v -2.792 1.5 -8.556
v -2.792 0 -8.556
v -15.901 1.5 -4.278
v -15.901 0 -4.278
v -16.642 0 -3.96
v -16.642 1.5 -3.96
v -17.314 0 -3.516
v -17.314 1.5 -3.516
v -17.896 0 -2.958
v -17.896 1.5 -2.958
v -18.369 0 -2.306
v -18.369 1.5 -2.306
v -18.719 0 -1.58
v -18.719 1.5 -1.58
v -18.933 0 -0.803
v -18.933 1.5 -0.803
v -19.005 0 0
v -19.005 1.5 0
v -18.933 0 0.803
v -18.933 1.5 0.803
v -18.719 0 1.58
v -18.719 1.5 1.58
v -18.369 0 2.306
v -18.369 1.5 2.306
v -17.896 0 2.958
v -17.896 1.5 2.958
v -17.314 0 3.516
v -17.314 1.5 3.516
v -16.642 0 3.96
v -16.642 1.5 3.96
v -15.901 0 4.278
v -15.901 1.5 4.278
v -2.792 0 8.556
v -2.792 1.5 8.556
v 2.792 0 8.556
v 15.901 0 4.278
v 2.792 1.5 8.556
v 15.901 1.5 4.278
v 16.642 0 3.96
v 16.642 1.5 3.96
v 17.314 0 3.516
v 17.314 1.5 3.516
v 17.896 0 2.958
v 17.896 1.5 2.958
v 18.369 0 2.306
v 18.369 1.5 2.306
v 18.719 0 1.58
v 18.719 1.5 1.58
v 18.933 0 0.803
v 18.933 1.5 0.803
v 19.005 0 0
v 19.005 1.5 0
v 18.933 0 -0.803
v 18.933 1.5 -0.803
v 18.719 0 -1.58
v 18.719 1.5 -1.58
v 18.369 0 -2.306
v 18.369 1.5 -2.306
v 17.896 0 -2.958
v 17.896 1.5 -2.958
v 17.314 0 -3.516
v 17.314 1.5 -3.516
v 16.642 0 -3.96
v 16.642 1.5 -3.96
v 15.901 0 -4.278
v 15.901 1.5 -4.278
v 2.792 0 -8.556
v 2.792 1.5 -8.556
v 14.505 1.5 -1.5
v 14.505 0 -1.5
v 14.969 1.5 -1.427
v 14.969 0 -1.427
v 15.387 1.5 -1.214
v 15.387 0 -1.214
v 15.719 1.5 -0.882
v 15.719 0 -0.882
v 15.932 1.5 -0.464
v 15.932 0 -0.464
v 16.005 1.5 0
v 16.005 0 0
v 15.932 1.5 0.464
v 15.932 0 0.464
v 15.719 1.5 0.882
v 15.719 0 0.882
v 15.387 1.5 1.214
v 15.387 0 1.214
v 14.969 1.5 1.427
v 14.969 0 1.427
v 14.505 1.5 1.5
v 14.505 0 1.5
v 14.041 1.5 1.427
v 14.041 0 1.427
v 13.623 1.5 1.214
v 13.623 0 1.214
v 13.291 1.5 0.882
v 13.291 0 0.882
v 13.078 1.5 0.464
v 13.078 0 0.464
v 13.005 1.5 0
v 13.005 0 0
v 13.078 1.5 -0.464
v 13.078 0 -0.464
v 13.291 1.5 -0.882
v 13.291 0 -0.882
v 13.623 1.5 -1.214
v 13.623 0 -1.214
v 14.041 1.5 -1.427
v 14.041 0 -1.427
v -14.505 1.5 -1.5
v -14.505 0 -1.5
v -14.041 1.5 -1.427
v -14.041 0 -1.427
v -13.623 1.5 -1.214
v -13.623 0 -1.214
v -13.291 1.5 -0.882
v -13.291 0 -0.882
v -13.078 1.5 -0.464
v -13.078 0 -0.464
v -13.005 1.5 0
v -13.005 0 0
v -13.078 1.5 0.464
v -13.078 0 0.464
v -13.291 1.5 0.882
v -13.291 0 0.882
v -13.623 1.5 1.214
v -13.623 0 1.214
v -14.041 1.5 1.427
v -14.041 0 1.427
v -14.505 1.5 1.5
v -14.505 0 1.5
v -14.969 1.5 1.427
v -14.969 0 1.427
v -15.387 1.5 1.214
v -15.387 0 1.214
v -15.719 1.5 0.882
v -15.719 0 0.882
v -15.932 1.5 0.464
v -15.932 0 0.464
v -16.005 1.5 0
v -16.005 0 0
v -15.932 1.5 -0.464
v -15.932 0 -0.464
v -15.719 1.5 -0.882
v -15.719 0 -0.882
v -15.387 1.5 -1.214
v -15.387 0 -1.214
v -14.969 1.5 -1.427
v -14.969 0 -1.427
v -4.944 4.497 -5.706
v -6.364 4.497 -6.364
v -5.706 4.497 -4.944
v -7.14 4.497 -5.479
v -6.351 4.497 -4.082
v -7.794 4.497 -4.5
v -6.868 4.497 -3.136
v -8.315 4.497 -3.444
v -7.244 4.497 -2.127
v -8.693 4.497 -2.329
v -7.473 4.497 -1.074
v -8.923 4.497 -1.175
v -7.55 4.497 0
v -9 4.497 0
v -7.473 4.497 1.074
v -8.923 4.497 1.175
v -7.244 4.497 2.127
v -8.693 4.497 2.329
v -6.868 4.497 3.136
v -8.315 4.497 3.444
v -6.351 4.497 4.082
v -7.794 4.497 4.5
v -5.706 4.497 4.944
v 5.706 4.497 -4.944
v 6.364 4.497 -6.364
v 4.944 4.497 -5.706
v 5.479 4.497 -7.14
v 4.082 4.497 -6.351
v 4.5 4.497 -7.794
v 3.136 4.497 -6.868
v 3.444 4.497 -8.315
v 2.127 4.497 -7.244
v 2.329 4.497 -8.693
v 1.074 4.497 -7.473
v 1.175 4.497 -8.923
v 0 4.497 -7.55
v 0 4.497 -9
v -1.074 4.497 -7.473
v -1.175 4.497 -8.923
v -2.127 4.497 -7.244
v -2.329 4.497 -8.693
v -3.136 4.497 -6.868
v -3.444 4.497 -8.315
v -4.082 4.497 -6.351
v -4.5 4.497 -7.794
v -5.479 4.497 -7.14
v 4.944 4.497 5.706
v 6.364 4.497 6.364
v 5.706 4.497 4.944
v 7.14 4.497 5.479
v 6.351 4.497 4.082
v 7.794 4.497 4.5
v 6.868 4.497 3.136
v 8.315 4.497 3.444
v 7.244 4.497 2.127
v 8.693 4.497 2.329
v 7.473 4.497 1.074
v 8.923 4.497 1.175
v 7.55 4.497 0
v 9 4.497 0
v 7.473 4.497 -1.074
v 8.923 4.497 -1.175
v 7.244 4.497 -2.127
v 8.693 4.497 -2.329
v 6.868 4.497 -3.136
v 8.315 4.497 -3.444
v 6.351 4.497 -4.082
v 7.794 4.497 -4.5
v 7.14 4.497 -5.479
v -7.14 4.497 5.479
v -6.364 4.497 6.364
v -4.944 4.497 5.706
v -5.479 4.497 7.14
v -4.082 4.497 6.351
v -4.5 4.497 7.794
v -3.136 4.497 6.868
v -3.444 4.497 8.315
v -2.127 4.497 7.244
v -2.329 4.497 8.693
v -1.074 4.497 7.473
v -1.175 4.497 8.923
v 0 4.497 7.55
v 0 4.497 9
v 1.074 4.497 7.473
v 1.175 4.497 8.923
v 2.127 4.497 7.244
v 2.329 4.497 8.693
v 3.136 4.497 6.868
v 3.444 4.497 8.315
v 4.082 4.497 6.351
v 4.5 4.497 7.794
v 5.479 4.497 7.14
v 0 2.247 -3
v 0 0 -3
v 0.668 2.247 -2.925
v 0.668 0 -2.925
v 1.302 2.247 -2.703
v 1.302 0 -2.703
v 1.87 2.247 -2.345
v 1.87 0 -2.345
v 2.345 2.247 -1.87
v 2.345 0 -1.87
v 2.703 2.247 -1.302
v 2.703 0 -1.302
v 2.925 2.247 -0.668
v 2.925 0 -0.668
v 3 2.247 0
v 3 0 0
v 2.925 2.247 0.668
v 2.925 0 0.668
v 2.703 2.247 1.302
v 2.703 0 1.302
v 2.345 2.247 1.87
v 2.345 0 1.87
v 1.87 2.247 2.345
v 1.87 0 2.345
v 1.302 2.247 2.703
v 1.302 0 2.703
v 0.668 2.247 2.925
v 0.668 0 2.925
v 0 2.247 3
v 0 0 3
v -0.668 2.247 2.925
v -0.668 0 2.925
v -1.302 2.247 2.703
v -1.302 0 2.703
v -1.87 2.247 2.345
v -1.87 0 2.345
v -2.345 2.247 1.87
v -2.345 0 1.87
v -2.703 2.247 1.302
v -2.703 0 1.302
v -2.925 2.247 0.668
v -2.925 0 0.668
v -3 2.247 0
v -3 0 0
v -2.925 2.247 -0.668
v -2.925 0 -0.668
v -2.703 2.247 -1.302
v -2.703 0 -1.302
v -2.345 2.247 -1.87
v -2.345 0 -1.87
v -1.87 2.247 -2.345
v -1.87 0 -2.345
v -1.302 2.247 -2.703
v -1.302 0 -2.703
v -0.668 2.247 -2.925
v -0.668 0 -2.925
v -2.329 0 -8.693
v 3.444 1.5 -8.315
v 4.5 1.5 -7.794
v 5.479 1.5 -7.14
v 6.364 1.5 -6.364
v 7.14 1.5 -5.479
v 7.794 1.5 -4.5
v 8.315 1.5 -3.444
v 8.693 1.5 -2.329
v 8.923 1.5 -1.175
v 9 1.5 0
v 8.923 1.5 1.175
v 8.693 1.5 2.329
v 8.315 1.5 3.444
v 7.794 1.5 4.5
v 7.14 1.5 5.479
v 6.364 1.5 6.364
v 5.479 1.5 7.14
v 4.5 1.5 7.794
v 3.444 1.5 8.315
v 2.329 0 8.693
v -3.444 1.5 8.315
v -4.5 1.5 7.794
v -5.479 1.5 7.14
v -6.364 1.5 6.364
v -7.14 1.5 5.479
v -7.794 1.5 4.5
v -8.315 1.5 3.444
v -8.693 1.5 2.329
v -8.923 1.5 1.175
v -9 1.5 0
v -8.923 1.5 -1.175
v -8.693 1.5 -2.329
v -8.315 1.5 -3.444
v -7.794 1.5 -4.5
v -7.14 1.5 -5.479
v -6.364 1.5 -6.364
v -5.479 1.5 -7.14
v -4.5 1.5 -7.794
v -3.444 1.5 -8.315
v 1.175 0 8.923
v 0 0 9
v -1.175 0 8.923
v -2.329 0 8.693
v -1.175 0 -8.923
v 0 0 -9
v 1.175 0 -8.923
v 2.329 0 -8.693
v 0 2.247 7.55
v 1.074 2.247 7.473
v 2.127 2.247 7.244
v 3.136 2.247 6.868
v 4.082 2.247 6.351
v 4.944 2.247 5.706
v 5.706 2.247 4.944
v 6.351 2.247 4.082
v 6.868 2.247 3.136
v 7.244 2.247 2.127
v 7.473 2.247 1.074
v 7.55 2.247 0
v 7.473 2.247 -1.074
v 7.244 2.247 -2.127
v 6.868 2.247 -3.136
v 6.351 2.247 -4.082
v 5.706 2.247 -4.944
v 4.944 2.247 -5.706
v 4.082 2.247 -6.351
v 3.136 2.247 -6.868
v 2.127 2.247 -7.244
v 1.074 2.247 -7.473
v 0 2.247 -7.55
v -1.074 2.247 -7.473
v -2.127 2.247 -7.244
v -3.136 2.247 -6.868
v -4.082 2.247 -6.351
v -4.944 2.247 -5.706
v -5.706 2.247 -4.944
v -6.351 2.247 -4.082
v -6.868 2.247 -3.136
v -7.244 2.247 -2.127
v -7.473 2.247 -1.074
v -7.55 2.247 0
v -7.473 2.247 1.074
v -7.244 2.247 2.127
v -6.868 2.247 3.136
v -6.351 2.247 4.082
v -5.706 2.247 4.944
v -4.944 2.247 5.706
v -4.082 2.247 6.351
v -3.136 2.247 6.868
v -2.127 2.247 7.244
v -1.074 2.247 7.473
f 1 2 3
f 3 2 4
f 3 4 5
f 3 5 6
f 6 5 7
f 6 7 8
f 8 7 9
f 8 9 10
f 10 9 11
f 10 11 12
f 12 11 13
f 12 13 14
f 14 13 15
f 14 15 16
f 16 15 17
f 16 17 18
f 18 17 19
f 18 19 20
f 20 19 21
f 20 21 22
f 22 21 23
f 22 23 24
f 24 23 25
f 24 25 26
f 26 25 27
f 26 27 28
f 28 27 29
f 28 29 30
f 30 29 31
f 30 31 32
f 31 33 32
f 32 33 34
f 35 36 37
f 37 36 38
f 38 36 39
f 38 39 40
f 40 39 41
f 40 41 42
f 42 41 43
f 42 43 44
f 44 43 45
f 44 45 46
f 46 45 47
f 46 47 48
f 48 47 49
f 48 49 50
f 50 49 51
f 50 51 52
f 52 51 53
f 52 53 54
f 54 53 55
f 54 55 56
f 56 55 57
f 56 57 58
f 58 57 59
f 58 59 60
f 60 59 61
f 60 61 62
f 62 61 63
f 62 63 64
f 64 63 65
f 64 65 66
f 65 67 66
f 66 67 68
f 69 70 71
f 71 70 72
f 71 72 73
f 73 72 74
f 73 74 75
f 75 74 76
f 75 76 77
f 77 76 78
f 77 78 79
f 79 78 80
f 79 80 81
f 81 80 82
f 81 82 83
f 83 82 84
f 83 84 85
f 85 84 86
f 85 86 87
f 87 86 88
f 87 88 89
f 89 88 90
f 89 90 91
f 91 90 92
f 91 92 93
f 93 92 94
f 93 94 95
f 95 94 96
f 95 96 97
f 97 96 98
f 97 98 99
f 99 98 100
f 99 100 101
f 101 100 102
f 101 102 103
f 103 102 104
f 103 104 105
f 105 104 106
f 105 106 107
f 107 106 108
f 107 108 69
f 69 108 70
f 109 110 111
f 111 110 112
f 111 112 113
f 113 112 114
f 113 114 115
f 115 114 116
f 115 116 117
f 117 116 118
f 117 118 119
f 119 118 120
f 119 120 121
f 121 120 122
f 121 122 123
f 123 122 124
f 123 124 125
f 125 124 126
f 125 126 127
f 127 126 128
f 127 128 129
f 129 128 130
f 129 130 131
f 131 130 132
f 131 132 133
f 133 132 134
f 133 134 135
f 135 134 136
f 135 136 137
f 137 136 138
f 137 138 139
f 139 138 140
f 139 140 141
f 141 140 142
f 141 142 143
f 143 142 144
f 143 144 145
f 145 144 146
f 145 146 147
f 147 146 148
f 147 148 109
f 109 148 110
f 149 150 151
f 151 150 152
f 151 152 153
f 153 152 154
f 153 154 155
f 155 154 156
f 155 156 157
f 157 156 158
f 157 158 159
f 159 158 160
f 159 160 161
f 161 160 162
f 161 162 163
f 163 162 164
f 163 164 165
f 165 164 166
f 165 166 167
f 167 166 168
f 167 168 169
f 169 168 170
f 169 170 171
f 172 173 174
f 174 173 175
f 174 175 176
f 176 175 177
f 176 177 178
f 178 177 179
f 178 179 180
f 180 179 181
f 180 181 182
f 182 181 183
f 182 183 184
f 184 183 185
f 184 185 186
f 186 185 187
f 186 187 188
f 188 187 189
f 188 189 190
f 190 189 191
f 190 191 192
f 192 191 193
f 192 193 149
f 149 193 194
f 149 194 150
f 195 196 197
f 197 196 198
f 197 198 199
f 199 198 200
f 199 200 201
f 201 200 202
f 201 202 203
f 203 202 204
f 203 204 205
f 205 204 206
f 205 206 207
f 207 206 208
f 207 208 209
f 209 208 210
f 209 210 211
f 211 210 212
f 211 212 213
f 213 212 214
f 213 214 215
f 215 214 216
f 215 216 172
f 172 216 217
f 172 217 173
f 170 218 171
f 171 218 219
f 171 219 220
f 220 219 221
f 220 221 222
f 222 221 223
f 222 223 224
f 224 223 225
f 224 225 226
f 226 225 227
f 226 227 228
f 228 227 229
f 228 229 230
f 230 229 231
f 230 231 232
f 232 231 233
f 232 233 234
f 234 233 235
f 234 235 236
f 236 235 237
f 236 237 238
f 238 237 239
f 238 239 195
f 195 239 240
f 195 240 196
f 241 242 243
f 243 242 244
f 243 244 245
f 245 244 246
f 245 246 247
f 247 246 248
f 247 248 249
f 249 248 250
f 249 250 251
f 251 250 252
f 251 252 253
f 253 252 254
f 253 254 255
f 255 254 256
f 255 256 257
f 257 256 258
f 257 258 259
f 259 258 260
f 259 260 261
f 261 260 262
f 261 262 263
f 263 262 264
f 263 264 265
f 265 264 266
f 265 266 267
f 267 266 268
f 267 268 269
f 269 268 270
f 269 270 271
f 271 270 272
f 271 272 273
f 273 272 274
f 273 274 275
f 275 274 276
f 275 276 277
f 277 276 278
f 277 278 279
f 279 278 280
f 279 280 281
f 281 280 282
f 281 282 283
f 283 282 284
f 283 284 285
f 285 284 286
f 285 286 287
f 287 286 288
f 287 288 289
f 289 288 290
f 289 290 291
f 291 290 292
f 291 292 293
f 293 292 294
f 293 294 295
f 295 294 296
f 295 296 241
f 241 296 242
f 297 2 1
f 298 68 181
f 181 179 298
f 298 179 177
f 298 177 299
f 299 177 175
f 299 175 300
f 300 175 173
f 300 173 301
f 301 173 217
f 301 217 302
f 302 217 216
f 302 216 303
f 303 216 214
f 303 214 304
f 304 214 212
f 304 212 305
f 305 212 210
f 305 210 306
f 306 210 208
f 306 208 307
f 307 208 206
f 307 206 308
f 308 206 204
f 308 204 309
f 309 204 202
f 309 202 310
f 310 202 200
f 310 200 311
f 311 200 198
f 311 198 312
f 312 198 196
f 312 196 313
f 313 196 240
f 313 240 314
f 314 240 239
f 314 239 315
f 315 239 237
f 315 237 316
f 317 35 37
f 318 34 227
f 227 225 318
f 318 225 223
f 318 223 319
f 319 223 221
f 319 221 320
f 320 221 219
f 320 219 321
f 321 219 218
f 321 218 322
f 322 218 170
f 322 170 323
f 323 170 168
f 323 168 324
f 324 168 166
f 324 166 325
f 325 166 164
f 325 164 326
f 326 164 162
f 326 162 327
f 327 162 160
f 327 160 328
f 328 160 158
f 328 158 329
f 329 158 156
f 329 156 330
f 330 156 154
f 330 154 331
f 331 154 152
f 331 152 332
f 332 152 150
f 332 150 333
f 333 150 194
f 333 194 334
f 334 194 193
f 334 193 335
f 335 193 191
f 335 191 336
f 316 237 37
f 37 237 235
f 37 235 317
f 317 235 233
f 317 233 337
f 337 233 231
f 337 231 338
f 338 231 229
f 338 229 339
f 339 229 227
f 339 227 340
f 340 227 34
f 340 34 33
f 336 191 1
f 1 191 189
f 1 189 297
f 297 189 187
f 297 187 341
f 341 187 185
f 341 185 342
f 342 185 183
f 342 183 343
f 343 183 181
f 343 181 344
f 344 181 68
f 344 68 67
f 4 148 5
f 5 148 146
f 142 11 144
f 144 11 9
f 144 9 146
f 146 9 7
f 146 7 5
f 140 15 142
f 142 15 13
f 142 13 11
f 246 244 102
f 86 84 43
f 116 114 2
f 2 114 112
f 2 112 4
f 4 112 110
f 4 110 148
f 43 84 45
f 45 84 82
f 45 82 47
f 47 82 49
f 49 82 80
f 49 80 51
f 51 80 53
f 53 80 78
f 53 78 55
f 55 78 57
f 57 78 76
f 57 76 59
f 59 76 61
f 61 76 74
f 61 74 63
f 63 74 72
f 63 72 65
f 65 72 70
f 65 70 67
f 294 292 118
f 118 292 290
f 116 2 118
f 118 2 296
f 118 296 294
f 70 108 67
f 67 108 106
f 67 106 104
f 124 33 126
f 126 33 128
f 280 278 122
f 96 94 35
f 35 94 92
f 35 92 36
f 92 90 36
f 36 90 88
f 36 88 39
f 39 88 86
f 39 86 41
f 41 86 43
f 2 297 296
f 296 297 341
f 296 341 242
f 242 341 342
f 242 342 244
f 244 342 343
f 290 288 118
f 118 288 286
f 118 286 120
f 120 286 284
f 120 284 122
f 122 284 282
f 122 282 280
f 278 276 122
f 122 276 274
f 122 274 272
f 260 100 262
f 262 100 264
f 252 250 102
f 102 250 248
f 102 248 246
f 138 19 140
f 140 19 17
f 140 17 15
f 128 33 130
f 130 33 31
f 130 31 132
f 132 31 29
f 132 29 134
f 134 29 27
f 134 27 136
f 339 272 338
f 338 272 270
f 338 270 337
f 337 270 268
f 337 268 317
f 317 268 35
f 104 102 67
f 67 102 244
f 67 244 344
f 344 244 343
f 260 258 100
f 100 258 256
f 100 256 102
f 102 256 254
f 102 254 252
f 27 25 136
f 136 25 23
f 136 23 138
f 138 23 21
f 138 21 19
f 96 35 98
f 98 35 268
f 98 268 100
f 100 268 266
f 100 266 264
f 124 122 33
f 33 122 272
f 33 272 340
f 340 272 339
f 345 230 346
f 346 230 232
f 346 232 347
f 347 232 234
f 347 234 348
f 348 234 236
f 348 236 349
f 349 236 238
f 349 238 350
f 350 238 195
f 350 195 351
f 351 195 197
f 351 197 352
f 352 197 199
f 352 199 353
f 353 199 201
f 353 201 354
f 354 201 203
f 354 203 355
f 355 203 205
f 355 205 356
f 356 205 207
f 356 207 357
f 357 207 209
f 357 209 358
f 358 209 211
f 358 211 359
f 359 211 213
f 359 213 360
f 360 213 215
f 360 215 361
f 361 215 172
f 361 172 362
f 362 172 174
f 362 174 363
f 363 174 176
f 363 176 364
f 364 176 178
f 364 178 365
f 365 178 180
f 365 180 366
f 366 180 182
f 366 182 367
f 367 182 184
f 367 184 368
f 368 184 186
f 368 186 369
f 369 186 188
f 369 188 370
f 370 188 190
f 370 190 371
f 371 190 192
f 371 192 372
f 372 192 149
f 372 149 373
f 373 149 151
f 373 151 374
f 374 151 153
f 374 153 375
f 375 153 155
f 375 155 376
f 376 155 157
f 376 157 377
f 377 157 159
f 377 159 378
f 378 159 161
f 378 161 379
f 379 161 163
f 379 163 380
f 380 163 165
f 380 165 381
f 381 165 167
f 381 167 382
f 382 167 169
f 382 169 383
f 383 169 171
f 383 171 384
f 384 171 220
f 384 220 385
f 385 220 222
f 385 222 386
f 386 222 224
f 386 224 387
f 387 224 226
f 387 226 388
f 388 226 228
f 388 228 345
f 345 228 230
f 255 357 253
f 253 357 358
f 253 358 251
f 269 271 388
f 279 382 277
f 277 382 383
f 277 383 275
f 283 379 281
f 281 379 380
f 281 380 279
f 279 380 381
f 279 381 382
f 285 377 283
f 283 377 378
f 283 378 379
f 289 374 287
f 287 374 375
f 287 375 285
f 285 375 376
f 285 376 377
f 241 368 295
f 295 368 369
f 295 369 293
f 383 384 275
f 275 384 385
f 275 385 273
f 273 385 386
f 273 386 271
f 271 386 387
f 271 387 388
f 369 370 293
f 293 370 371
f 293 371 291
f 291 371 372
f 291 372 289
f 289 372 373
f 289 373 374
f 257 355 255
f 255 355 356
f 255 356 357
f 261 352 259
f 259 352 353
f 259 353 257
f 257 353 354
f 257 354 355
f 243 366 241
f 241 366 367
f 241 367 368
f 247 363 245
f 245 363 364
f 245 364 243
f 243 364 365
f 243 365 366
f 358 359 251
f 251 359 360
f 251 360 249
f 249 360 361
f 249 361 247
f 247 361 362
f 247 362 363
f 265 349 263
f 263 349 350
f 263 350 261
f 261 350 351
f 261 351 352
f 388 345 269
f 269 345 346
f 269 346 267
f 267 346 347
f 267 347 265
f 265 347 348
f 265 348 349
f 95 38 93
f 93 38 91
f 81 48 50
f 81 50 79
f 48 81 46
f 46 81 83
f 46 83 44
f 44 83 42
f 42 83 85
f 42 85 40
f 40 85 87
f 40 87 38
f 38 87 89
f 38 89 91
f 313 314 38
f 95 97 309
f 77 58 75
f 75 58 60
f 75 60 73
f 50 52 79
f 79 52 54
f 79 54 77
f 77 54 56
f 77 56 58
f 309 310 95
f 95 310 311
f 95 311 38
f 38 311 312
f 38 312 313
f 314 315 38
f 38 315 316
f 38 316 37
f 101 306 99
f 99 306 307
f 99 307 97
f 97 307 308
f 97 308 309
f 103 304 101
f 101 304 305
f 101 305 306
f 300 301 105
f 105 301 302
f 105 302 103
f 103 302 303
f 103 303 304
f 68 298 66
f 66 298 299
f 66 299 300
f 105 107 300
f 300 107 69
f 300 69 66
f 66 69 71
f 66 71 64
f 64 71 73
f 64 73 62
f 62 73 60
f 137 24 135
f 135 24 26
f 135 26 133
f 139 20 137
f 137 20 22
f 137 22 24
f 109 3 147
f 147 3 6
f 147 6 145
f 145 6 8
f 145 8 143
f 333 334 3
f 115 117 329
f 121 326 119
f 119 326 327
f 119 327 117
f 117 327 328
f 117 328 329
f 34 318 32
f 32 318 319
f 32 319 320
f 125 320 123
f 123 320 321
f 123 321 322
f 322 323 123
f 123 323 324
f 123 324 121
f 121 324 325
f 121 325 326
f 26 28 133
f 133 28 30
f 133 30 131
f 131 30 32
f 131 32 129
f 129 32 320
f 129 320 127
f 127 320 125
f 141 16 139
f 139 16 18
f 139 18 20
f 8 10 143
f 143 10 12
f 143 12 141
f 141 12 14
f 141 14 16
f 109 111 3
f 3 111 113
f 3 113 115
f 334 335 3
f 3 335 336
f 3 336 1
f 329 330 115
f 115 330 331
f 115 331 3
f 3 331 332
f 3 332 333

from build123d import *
from build123d.topology import SkipClean

# Parameters (mm, degrees)
SKETCH1_R           = 1.5
SKETCH1_R_2         = 3
BOSS_EXTRUDE1_DEPTH = 4.4972
CUT_EXTRUDE2_START  = 4.4972
SKETCH1_6_R         = 7.55
CUT_EXTRUDE2_DEPTH  = 2.25
CUT_EXTRUDE1_START  = 1.5
SKETCH1_5_R         = 1.5
CUT_EXTRUDE1_DEPTH  = 2.9972


with BuildPart() as part:
    # Sketch1 → Boss-Extrude1 (new body)
    with BuildSketch(Plane(origin=(0, 0, 0), x_dir=(1, 0, 0), z_dir=(0, 1, 0))):
        with BuildLine():
            Line((15.901070321, 4.277965365), (2.792140641, 8.555930729))
            ThreePointArc((2.792140641, 8.555930729), (0, 9), (-2.792140641, 8.555930729))
            Line((-2.792140641, 8.555930729), (-15.901070321, 4.277965365))
            ThreePointArc((-15.901070321, 4.277965365), (-19.005, 0), (-15.901070321, -4.277965365))
            Line((-15.901070321, -4.277965365), (-2.792140641, -8.555930729))
            ThreePointArc((-2.792140641, -8.555930729), (0, -9), (2.792140641, -8.555930729))
            Line((2.792140641, -8.555930729), (15.901070321, -4.277965365))
            ThreePointArc((15.901070321, -4.277965365), (19.005, 0), (15.901070321, 4.277965365))
        make_face()
        with Locations(Location((14.505, 0, 0), (0, 0, 270))):
            Circle(SKETCH1_R, mode=Mode.SUBTRACT)
        with Locations(Location((-14.505, 0, 0), (0, 0, 270))):
            Circle(SKETCH1_R, mode=Mode.SUBTRACT)
        with Locations(Location((0, 0, 0), (0, 0, 270))):
            Circle(SKETCH1_R_2, mode=Mode.SUBTRACT)
    extrude(amount=BOSS_EXTRUDE1_DEPTH)

    # Sketch1<6> → Cut-Extrude2 (cut)
    with BuildSketch(Plane(origin=(0, 0, 0), x_dir=(1, 0, 0), z_dir=(0, 1, 0)).offset(CUT_EXTRUDE2_START)):
        with Locations(Location((0, 0, 0), (0, 0, 270))):
            Circle(SKETCH1_6_R)
    extrude(amount=-CUT_EXTRUDE2_DEPTH, mode=Mode.SUBTRACT)

    # Sketch1<5> → Cut-Extrude1 (cut)
    # profile 1 of 2: a face of its own
    with SkipClean():  # the faces are left unmerged after this step: merging them gives an invalid solid
        with BuildSketch(Plane(origin=(0, 0, 0), x_dir=(1, 0, 0), z_dir=(0, 1, 0)).offset(CUT_EXTRUDE1_START)):
            with BuildLine():
                Line((-15.901070321, -4.277965365), (-2.792140641, -8.555930729))
                ThreePointArc((-2.792140641, -8.555930729), (-9, 0), (-2.792140641, 8.555930729))
                Line((-2.792140641, 8.555930729), (-15.901070321, 4.277965365))
                ThreePointArc((-15.901070321, 4.277965365), (-19.005, 0), (-15.901070321, -4.277965365))
            make_face()
            with Locations(Location((-14.505, 0, 0), (0, 0, 270))):
                Circle(SKETCH1_5_R, mode=Mode.SUBTRACT)
        # profile 2 of 2: a face of its own
        with BuildSketch(Plane(origin=(0, 0, 0), x_dir=(1, 0, 0), z_dir=(0, 1, 0)).offset(CUT_EXTRUDE1_START)):
            with BuildLine():
                ThreePointArc((9, 0), (7.284547542, -5.28539186), (2.792140641, -8.555930729))
                Line((2.792140641, -8.555930729), (15.901070321, -4.277965365))
                ThreePointArc((15.901070321, -4.277965365), (19.005, 0), (15.901070321, 4.277965365))
                Line((15.901070321, 4.277965365), (2.792140641, 8.555930729))
                ThreePointArc((2.792140641, 8.555930729), (7.284547542, 5.28539186), (9, 0))
            make_face()
            with Locations(Location((14.505, 0, 0), (0, 0, 270))):
                Circle(SKETCH1_5_R, mode=Mode.SUBTRACT)
        extrude(amount=CUT_EXTRUDE1_DEPTH, mode=Mode.SUBTRACT)


solid = part.part
